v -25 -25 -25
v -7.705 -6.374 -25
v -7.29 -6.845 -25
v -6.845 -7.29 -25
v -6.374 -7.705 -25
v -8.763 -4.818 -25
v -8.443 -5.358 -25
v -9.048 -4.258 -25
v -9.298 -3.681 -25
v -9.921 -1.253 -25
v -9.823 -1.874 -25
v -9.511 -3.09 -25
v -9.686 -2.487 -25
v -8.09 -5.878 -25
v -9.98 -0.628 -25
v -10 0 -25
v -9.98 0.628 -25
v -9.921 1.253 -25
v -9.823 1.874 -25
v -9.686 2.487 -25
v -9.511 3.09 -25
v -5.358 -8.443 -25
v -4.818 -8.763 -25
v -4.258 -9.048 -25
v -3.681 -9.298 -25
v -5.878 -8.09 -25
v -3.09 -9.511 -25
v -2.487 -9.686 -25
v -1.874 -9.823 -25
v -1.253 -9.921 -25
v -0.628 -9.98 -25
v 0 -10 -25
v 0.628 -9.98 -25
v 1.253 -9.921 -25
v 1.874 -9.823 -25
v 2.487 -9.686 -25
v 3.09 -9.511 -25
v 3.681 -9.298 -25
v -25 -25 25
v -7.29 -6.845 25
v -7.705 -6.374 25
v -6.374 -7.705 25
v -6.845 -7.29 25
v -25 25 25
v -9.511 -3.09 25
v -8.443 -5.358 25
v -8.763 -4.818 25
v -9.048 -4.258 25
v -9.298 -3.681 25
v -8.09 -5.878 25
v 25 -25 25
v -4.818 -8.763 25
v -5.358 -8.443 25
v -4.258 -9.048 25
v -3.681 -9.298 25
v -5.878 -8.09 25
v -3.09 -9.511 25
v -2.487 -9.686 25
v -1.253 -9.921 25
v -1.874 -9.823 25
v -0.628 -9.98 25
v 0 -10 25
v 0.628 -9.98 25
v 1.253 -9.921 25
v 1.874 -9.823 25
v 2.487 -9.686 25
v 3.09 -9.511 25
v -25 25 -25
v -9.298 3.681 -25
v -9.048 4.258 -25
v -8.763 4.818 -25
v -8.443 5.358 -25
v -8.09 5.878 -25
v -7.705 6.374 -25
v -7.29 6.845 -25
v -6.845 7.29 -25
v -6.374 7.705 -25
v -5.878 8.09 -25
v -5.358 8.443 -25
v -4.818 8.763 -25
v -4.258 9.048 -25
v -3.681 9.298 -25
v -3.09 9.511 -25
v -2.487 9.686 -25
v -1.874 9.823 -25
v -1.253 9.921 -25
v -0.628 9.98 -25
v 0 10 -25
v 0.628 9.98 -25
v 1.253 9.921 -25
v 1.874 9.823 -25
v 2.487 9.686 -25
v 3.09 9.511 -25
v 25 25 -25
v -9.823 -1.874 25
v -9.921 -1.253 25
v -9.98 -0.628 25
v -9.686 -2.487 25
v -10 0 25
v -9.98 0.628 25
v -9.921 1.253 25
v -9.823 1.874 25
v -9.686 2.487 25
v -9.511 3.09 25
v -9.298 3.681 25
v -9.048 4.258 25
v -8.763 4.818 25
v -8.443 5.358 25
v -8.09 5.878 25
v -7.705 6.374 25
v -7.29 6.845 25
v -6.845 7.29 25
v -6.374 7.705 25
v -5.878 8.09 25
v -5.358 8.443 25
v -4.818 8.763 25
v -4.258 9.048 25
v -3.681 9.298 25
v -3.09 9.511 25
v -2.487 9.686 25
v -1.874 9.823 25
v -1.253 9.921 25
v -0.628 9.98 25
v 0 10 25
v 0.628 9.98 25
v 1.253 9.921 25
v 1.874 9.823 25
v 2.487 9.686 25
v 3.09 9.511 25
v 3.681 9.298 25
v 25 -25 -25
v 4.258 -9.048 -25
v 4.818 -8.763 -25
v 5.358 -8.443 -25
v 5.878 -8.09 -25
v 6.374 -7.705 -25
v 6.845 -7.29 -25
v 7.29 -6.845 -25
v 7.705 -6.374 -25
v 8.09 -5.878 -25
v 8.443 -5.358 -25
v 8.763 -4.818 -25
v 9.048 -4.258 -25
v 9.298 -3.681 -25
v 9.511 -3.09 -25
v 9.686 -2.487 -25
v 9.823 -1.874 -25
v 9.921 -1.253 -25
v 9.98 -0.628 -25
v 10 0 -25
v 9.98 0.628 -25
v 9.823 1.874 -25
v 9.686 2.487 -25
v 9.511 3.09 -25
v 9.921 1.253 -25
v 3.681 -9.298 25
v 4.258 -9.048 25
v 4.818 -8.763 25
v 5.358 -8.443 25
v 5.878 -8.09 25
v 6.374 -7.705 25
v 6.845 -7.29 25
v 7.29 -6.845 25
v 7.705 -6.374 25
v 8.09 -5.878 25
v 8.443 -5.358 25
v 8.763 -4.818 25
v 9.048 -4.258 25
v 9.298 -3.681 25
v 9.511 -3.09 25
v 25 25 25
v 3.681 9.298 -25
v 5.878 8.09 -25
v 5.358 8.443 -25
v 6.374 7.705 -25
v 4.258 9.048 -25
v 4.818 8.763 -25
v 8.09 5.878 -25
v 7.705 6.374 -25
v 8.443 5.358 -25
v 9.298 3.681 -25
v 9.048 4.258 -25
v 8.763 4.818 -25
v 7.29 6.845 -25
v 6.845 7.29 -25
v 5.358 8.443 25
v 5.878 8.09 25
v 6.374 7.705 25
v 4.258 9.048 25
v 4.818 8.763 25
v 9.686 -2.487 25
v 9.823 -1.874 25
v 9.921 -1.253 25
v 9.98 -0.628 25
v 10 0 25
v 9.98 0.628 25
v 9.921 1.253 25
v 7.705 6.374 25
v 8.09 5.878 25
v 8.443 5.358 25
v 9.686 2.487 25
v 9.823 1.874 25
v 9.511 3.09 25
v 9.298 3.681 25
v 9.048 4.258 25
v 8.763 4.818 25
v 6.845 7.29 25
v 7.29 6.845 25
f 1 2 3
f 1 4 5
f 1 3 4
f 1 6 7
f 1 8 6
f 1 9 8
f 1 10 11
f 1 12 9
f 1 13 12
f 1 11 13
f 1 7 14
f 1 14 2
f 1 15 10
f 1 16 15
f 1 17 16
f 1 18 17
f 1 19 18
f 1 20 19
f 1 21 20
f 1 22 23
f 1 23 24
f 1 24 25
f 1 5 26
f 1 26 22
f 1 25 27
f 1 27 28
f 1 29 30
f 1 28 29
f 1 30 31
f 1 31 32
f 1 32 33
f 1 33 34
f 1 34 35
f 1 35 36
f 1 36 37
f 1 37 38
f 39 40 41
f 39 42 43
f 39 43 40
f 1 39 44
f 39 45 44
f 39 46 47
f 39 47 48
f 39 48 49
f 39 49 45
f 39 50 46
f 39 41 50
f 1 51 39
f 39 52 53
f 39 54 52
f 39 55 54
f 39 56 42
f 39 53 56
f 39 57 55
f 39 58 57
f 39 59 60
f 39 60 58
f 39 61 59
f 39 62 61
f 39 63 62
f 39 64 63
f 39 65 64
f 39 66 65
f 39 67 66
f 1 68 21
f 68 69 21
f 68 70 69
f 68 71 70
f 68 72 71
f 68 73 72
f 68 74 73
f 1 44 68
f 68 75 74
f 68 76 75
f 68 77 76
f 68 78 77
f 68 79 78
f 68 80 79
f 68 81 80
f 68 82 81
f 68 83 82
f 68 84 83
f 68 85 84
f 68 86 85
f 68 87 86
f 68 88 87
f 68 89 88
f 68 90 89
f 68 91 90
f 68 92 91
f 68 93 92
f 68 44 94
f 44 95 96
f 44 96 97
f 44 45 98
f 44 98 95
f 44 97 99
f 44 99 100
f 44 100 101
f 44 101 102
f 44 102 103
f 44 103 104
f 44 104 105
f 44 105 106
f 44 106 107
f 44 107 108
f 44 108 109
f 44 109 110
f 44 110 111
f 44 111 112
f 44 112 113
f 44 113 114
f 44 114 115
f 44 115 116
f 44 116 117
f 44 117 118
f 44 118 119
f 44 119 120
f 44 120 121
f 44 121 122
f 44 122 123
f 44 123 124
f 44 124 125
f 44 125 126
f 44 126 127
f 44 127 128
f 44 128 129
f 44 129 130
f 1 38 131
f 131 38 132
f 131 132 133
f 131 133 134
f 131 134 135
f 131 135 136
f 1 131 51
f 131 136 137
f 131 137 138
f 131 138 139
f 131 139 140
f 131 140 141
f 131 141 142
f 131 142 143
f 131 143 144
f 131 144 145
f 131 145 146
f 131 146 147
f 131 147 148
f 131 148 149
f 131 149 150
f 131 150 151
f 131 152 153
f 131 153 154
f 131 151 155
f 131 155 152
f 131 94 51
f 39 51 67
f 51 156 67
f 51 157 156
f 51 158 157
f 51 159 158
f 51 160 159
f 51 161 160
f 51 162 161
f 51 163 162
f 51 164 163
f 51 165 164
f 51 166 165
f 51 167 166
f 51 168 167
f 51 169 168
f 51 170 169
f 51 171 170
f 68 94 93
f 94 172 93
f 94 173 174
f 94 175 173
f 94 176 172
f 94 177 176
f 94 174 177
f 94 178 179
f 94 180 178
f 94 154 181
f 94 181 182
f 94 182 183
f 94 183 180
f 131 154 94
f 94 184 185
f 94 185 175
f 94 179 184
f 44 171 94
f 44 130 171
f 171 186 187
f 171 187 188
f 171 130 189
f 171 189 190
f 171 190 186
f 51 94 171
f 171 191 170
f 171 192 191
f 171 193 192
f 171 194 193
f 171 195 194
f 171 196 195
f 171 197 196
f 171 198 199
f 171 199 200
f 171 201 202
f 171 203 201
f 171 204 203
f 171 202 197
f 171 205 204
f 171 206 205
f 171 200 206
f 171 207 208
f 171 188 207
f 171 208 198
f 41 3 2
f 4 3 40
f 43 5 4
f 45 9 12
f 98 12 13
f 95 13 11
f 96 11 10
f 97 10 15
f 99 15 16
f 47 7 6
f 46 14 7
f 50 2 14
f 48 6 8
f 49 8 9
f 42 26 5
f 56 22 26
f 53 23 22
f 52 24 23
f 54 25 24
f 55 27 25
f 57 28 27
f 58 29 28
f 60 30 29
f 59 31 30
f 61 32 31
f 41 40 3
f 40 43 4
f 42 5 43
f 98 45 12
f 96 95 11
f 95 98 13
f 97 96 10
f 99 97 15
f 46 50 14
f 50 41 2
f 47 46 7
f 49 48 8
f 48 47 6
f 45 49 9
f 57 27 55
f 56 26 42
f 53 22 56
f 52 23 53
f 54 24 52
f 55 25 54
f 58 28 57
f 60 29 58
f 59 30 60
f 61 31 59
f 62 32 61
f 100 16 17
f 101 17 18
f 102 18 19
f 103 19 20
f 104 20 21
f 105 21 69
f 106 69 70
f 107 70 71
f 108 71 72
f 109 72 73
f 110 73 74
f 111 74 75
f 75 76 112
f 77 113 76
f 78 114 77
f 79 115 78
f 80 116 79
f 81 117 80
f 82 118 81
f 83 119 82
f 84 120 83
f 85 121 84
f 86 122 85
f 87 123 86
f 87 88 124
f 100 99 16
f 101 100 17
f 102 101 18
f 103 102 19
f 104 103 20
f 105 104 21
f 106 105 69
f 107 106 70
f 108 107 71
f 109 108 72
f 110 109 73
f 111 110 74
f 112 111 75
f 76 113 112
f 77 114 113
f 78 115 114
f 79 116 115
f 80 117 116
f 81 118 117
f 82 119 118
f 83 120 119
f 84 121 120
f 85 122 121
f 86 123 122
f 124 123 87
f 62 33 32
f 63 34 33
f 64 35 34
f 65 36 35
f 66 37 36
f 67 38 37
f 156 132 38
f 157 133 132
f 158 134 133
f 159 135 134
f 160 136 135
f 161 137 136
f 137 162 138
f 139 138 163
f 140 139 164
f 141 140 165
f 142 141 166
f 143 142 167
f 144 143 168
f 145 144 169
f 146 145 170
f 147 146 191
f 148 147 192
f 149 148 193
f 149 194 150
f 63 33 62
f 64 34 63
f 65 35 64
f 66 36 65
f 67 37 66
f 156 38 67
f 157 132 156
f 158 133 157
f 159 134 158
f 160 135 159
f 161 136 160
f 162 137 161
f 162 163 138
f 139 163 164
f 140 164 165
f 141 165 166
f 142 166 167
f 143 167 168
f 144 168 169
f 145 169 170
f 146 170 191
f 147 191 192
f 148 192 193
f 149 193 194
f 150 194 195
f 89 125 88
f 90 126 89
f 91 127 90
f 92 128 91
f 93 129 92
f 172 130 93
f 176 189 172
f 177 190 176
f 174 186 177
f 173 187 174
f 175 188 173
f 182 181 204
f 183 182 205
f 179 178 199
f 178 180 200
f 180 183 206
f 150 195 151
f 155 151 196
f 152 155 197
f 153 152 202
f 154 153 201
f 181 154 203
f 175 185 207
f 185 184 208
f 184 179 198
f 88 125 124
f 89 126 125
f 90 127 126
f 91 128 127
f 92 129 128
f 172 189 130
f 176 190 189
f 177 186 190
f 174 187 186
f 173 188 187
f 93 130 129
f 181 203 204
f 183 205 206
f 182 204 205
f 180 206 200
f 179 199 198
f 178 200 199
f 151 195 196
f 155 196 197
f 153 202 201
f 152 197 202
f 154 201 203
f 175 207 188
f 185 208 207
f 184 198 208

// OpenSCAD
$fn = 100;
difference() {
    cube([50, 50, 50], center = true);
    cylinder(h = 50, d = 20, center = true);
}
